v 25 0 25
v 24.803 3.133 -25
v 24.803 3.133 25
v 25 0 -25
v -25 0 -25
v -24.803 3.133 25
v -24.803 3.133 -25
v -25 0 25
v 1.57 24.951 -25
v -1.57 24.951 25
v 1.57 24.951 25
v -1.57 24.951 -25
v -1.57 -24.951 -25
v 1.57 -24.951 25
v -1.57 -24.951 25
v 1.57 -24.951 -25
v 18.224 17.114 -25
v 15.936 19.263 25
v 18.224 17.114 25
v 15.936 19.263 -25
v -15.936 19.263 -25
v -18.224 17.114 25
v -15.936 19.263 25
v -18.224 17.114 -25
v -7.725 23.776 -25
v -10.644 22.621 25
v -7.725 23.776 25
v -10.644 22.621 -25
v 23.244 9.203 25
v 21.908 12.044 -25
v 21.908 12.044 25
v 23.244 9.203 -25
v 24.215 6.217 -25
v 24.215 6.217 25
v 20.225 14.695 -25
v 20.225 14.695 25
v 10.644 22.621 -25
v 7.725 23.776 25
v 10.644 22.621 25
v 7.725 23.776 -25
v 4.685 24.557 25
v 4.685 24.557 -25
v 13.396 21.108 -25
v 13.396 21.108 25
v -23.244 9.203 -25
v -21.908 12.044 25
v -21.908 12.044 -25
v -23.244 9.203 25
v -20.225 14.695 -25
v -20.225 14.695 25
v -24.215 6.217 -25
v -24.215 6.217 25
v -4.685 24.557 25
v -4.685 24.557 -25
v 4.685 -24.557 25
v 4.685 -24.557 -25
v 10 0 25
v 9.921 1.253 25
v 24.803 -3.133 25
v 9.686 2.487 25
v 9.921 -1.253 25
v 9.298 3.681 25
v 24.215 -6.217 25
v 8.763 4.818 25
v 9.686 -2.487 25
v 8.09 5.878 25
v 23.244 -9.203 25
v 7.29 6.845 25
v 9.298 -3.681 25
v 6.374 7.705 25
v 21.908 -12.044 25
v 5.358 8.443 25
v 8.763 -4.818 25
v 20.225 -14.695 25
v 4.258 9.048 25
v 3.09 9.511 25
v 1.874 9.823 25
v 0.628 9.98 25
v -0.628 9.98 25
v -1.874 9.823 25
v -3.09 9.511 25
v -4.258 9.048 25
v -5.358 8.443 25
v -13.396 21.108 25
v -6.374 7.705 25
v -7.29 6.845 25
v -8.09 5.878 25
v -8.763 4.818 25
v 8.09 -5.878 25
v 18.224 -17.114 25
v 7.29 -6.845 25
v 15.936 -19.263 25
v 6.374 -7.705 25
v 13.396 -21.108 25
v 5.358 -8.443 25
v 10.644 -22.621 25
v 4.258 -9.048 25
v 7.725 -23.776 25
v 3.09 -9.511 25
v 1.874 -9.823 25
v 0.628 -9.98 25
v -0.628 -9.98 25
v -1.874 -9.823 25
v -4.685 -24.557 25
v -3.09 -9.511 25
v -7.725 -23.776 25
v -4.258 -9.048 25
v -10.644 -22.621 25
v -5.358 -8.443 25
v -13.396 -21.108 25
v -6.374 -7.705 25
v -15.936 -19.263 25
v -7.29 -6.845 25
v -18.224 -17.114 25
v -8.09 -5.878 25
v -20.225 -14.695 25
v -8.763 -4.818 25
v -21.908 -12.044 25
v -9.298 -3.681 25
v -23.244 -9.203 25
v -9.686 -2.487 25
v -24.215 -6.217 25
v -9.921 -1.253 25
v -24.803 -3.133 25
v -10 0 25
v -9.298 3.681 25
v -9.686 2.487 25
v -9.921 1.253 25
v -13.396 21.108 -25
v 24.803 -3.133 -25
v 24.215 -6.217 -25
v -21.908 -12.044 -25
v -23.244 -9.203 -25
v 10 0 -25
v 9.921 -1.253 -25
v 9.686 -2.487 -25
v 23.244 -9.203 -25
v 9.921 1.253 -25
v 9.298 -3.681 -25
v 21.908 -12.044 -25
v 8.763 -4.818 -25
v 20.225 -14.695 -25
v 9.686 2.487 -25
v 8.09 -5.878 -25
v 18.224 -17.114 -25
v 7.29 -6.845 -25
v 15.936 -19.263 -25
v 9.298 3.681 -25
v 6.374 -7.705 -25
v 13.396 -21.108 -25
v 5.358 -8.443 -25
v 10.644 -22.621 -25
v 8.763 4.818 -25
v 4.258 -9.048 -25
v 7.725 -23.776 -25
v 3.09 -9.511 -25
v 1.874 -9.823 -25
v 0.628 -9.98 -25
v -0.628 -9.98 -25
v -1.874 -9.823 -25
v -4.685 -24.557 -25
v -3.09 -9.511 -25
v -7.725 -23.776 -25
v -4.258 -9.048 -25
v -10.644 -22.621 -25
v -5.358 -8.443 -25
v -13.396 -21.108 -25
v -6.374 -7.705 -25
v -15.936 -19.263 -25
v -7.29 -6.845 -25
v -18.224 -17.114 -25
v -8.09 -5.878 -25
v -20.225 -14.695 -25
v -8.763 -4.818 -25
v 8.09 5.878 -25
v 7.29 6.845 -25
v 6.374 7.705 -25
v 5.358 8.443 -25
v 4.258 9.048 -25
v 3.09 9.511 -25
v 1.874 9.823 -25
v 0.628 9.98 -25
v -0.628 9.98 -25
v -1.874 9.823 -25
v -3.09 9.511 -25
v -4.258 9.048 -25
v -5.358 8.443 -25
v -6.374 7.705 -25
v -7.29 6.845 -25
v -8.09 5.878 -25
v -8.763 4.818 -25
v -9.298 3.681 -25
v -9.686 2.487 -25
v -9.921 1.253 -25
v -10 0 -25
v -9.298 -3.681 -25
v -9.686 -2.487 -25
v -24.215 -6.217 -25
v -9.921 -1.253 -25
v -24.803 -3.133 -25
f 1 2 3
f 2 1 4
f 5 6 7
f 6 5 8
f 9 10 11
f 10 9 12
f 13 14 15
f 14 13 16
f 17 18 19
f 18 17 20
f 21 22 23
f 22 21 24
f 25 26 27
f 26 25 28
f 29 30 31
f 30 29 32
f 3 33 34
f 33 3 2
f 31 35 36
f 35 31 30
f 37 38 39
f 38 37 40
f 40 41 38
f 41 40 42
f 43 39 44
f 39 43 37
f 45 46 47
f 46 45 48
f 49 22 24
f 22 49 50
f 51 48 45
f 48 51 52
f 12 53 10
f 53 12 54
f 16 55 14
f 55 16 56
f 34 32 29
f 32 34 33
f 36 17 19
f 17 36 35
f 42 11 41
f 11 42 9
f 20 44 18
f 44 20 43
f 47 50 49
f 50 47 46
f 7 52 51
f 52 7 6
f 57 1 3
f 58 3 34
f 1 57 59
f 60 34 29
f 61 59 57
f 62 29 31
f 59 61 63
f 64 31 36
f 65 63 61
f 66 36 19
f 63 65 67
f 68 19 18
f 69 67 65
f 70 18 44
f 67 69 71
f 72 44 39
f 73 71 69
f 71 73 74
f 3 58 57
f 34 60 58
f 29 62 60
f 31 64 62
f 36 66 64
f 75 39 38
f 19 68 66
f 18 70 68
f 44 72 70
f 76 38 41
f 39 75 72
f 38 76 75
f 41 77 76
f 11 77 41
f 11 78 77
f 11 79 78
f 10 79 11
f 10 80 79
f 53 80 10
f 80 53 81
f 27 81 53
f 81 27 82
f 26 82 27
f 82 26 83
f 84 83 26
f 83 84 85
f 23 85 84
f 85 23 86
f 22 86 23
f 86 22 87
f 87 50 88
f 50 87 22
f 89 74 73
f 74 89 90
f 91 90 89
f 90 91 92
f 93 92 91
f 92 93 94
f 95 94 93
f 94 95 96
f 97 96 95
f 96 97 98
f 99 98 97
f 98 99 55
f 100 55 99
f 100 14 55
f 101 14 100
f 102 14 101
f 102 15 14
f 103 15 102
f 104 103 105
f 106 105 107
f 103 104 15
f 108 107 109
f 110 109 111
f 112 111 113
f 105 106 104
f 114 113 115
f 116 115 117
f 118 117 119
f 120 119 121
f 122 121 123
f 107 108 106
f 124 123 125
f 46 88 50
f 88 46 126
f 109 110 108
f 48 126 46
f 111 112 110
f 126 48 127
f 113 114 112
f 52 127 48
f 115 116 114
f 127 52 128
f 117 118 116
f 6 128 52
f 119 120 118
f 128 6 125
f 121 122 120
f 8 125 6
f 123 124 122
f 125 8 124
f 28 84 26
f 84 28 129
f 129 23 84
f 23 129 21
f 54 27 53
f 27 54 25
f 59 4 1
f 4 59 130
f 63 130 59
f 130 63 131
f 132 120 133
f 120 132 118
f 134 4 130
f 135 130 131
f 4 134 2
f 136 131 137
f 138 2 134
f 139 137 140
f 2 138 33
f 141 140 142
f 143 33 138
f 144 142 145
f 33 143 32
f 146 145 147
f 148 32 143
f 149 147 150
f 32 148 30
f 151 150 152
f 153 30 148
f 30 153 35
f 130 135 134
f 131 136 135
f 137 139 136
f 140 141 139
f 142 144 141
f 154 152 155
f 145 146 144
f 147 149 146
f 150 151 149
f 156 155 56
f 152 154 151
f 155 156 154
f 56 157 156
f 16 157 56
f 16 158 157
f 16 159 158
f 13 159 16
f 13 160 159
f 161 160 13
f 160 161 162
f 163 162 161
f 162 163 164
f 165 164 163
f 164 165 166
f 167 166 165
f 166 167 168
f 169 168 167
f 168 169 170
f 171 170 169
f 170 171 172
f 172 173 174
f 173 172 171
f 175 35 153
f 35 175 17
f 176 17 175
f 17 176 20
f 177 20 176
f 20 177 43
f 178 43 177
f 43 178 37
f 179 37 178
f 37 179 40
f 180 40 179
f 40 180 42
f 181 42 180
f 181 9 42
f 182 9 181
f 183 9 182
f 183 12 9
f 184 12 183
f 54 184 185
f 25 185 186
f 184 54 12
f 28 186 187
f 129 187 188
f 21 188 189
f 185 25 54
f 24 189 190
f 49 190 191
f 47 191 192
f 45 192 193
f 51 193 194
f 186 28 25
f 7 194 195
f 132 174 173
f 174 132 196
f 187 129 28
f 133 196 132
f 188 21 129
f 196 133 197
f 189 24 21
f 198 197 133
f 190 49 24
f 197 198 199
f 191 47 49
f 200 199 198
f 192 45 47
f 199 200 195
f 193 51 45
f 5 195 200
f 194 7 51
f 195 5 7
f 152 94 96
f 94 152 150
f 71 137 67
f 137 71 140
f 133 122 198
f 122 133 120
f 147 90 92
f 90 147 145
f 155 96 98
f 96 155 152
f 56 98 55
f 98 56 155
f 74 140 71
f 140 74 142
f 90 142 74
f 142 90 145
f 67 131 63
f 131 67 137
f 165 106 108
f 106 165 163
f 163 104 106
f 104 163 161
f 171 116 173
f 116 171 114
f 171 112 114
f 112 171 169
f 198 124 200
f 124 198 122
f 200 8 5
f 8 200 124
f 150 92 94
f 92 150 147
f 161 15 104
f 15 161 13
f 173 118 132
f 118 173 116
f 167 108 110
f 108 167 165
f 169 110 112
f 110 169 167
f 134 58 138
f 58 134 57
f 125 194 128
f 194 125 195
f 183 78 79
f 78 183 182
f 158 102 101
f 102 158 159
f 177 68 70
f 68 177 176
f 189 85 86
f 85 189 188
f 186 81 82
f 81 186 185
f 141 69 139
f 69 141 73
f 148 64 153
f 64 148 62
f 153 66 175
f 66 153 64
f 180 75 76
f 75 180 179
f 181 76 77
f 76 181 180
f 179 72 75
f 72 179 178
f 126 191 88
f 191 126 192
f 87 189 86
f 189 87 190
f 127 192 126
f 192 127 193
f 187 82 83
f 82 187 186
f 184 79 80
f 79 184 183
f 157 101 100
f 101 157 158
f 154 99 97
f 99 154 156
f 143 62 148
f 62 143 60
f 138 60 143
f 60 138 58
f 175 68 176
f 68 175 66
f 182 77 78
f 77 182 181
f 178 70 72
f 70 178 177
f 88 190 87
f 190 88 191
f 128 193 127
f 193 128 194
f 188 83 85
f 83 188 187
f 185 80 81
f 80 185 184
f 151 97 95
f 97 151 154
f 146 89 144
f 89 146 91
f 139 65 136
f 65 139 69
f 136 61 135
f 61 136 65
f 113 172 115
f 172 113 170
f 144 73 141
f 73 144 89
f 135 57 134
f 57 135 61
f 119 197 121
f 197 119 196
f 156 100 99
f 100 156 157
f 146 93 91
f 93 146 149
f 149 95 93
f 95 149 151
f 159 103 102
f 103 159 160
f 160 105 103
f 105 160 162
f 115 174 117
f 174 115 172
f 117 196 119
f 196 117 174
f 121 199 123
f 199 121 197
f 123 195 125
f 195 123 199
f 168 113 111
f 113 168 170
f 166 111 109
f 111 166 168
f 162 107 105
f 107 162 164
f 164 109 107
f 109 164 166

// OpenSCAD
$fn = 50;


difference() {
	union() {
		translate(v = [0, 0, -25.0000000000]) {
			cylinder(h = 50, r = 25.0000000000);
		}
	}
	union() {
		translate(v = [0, 0, -100.0000000000]) {
			cylinder(h = 200, r = 10);
		}
	}
}
